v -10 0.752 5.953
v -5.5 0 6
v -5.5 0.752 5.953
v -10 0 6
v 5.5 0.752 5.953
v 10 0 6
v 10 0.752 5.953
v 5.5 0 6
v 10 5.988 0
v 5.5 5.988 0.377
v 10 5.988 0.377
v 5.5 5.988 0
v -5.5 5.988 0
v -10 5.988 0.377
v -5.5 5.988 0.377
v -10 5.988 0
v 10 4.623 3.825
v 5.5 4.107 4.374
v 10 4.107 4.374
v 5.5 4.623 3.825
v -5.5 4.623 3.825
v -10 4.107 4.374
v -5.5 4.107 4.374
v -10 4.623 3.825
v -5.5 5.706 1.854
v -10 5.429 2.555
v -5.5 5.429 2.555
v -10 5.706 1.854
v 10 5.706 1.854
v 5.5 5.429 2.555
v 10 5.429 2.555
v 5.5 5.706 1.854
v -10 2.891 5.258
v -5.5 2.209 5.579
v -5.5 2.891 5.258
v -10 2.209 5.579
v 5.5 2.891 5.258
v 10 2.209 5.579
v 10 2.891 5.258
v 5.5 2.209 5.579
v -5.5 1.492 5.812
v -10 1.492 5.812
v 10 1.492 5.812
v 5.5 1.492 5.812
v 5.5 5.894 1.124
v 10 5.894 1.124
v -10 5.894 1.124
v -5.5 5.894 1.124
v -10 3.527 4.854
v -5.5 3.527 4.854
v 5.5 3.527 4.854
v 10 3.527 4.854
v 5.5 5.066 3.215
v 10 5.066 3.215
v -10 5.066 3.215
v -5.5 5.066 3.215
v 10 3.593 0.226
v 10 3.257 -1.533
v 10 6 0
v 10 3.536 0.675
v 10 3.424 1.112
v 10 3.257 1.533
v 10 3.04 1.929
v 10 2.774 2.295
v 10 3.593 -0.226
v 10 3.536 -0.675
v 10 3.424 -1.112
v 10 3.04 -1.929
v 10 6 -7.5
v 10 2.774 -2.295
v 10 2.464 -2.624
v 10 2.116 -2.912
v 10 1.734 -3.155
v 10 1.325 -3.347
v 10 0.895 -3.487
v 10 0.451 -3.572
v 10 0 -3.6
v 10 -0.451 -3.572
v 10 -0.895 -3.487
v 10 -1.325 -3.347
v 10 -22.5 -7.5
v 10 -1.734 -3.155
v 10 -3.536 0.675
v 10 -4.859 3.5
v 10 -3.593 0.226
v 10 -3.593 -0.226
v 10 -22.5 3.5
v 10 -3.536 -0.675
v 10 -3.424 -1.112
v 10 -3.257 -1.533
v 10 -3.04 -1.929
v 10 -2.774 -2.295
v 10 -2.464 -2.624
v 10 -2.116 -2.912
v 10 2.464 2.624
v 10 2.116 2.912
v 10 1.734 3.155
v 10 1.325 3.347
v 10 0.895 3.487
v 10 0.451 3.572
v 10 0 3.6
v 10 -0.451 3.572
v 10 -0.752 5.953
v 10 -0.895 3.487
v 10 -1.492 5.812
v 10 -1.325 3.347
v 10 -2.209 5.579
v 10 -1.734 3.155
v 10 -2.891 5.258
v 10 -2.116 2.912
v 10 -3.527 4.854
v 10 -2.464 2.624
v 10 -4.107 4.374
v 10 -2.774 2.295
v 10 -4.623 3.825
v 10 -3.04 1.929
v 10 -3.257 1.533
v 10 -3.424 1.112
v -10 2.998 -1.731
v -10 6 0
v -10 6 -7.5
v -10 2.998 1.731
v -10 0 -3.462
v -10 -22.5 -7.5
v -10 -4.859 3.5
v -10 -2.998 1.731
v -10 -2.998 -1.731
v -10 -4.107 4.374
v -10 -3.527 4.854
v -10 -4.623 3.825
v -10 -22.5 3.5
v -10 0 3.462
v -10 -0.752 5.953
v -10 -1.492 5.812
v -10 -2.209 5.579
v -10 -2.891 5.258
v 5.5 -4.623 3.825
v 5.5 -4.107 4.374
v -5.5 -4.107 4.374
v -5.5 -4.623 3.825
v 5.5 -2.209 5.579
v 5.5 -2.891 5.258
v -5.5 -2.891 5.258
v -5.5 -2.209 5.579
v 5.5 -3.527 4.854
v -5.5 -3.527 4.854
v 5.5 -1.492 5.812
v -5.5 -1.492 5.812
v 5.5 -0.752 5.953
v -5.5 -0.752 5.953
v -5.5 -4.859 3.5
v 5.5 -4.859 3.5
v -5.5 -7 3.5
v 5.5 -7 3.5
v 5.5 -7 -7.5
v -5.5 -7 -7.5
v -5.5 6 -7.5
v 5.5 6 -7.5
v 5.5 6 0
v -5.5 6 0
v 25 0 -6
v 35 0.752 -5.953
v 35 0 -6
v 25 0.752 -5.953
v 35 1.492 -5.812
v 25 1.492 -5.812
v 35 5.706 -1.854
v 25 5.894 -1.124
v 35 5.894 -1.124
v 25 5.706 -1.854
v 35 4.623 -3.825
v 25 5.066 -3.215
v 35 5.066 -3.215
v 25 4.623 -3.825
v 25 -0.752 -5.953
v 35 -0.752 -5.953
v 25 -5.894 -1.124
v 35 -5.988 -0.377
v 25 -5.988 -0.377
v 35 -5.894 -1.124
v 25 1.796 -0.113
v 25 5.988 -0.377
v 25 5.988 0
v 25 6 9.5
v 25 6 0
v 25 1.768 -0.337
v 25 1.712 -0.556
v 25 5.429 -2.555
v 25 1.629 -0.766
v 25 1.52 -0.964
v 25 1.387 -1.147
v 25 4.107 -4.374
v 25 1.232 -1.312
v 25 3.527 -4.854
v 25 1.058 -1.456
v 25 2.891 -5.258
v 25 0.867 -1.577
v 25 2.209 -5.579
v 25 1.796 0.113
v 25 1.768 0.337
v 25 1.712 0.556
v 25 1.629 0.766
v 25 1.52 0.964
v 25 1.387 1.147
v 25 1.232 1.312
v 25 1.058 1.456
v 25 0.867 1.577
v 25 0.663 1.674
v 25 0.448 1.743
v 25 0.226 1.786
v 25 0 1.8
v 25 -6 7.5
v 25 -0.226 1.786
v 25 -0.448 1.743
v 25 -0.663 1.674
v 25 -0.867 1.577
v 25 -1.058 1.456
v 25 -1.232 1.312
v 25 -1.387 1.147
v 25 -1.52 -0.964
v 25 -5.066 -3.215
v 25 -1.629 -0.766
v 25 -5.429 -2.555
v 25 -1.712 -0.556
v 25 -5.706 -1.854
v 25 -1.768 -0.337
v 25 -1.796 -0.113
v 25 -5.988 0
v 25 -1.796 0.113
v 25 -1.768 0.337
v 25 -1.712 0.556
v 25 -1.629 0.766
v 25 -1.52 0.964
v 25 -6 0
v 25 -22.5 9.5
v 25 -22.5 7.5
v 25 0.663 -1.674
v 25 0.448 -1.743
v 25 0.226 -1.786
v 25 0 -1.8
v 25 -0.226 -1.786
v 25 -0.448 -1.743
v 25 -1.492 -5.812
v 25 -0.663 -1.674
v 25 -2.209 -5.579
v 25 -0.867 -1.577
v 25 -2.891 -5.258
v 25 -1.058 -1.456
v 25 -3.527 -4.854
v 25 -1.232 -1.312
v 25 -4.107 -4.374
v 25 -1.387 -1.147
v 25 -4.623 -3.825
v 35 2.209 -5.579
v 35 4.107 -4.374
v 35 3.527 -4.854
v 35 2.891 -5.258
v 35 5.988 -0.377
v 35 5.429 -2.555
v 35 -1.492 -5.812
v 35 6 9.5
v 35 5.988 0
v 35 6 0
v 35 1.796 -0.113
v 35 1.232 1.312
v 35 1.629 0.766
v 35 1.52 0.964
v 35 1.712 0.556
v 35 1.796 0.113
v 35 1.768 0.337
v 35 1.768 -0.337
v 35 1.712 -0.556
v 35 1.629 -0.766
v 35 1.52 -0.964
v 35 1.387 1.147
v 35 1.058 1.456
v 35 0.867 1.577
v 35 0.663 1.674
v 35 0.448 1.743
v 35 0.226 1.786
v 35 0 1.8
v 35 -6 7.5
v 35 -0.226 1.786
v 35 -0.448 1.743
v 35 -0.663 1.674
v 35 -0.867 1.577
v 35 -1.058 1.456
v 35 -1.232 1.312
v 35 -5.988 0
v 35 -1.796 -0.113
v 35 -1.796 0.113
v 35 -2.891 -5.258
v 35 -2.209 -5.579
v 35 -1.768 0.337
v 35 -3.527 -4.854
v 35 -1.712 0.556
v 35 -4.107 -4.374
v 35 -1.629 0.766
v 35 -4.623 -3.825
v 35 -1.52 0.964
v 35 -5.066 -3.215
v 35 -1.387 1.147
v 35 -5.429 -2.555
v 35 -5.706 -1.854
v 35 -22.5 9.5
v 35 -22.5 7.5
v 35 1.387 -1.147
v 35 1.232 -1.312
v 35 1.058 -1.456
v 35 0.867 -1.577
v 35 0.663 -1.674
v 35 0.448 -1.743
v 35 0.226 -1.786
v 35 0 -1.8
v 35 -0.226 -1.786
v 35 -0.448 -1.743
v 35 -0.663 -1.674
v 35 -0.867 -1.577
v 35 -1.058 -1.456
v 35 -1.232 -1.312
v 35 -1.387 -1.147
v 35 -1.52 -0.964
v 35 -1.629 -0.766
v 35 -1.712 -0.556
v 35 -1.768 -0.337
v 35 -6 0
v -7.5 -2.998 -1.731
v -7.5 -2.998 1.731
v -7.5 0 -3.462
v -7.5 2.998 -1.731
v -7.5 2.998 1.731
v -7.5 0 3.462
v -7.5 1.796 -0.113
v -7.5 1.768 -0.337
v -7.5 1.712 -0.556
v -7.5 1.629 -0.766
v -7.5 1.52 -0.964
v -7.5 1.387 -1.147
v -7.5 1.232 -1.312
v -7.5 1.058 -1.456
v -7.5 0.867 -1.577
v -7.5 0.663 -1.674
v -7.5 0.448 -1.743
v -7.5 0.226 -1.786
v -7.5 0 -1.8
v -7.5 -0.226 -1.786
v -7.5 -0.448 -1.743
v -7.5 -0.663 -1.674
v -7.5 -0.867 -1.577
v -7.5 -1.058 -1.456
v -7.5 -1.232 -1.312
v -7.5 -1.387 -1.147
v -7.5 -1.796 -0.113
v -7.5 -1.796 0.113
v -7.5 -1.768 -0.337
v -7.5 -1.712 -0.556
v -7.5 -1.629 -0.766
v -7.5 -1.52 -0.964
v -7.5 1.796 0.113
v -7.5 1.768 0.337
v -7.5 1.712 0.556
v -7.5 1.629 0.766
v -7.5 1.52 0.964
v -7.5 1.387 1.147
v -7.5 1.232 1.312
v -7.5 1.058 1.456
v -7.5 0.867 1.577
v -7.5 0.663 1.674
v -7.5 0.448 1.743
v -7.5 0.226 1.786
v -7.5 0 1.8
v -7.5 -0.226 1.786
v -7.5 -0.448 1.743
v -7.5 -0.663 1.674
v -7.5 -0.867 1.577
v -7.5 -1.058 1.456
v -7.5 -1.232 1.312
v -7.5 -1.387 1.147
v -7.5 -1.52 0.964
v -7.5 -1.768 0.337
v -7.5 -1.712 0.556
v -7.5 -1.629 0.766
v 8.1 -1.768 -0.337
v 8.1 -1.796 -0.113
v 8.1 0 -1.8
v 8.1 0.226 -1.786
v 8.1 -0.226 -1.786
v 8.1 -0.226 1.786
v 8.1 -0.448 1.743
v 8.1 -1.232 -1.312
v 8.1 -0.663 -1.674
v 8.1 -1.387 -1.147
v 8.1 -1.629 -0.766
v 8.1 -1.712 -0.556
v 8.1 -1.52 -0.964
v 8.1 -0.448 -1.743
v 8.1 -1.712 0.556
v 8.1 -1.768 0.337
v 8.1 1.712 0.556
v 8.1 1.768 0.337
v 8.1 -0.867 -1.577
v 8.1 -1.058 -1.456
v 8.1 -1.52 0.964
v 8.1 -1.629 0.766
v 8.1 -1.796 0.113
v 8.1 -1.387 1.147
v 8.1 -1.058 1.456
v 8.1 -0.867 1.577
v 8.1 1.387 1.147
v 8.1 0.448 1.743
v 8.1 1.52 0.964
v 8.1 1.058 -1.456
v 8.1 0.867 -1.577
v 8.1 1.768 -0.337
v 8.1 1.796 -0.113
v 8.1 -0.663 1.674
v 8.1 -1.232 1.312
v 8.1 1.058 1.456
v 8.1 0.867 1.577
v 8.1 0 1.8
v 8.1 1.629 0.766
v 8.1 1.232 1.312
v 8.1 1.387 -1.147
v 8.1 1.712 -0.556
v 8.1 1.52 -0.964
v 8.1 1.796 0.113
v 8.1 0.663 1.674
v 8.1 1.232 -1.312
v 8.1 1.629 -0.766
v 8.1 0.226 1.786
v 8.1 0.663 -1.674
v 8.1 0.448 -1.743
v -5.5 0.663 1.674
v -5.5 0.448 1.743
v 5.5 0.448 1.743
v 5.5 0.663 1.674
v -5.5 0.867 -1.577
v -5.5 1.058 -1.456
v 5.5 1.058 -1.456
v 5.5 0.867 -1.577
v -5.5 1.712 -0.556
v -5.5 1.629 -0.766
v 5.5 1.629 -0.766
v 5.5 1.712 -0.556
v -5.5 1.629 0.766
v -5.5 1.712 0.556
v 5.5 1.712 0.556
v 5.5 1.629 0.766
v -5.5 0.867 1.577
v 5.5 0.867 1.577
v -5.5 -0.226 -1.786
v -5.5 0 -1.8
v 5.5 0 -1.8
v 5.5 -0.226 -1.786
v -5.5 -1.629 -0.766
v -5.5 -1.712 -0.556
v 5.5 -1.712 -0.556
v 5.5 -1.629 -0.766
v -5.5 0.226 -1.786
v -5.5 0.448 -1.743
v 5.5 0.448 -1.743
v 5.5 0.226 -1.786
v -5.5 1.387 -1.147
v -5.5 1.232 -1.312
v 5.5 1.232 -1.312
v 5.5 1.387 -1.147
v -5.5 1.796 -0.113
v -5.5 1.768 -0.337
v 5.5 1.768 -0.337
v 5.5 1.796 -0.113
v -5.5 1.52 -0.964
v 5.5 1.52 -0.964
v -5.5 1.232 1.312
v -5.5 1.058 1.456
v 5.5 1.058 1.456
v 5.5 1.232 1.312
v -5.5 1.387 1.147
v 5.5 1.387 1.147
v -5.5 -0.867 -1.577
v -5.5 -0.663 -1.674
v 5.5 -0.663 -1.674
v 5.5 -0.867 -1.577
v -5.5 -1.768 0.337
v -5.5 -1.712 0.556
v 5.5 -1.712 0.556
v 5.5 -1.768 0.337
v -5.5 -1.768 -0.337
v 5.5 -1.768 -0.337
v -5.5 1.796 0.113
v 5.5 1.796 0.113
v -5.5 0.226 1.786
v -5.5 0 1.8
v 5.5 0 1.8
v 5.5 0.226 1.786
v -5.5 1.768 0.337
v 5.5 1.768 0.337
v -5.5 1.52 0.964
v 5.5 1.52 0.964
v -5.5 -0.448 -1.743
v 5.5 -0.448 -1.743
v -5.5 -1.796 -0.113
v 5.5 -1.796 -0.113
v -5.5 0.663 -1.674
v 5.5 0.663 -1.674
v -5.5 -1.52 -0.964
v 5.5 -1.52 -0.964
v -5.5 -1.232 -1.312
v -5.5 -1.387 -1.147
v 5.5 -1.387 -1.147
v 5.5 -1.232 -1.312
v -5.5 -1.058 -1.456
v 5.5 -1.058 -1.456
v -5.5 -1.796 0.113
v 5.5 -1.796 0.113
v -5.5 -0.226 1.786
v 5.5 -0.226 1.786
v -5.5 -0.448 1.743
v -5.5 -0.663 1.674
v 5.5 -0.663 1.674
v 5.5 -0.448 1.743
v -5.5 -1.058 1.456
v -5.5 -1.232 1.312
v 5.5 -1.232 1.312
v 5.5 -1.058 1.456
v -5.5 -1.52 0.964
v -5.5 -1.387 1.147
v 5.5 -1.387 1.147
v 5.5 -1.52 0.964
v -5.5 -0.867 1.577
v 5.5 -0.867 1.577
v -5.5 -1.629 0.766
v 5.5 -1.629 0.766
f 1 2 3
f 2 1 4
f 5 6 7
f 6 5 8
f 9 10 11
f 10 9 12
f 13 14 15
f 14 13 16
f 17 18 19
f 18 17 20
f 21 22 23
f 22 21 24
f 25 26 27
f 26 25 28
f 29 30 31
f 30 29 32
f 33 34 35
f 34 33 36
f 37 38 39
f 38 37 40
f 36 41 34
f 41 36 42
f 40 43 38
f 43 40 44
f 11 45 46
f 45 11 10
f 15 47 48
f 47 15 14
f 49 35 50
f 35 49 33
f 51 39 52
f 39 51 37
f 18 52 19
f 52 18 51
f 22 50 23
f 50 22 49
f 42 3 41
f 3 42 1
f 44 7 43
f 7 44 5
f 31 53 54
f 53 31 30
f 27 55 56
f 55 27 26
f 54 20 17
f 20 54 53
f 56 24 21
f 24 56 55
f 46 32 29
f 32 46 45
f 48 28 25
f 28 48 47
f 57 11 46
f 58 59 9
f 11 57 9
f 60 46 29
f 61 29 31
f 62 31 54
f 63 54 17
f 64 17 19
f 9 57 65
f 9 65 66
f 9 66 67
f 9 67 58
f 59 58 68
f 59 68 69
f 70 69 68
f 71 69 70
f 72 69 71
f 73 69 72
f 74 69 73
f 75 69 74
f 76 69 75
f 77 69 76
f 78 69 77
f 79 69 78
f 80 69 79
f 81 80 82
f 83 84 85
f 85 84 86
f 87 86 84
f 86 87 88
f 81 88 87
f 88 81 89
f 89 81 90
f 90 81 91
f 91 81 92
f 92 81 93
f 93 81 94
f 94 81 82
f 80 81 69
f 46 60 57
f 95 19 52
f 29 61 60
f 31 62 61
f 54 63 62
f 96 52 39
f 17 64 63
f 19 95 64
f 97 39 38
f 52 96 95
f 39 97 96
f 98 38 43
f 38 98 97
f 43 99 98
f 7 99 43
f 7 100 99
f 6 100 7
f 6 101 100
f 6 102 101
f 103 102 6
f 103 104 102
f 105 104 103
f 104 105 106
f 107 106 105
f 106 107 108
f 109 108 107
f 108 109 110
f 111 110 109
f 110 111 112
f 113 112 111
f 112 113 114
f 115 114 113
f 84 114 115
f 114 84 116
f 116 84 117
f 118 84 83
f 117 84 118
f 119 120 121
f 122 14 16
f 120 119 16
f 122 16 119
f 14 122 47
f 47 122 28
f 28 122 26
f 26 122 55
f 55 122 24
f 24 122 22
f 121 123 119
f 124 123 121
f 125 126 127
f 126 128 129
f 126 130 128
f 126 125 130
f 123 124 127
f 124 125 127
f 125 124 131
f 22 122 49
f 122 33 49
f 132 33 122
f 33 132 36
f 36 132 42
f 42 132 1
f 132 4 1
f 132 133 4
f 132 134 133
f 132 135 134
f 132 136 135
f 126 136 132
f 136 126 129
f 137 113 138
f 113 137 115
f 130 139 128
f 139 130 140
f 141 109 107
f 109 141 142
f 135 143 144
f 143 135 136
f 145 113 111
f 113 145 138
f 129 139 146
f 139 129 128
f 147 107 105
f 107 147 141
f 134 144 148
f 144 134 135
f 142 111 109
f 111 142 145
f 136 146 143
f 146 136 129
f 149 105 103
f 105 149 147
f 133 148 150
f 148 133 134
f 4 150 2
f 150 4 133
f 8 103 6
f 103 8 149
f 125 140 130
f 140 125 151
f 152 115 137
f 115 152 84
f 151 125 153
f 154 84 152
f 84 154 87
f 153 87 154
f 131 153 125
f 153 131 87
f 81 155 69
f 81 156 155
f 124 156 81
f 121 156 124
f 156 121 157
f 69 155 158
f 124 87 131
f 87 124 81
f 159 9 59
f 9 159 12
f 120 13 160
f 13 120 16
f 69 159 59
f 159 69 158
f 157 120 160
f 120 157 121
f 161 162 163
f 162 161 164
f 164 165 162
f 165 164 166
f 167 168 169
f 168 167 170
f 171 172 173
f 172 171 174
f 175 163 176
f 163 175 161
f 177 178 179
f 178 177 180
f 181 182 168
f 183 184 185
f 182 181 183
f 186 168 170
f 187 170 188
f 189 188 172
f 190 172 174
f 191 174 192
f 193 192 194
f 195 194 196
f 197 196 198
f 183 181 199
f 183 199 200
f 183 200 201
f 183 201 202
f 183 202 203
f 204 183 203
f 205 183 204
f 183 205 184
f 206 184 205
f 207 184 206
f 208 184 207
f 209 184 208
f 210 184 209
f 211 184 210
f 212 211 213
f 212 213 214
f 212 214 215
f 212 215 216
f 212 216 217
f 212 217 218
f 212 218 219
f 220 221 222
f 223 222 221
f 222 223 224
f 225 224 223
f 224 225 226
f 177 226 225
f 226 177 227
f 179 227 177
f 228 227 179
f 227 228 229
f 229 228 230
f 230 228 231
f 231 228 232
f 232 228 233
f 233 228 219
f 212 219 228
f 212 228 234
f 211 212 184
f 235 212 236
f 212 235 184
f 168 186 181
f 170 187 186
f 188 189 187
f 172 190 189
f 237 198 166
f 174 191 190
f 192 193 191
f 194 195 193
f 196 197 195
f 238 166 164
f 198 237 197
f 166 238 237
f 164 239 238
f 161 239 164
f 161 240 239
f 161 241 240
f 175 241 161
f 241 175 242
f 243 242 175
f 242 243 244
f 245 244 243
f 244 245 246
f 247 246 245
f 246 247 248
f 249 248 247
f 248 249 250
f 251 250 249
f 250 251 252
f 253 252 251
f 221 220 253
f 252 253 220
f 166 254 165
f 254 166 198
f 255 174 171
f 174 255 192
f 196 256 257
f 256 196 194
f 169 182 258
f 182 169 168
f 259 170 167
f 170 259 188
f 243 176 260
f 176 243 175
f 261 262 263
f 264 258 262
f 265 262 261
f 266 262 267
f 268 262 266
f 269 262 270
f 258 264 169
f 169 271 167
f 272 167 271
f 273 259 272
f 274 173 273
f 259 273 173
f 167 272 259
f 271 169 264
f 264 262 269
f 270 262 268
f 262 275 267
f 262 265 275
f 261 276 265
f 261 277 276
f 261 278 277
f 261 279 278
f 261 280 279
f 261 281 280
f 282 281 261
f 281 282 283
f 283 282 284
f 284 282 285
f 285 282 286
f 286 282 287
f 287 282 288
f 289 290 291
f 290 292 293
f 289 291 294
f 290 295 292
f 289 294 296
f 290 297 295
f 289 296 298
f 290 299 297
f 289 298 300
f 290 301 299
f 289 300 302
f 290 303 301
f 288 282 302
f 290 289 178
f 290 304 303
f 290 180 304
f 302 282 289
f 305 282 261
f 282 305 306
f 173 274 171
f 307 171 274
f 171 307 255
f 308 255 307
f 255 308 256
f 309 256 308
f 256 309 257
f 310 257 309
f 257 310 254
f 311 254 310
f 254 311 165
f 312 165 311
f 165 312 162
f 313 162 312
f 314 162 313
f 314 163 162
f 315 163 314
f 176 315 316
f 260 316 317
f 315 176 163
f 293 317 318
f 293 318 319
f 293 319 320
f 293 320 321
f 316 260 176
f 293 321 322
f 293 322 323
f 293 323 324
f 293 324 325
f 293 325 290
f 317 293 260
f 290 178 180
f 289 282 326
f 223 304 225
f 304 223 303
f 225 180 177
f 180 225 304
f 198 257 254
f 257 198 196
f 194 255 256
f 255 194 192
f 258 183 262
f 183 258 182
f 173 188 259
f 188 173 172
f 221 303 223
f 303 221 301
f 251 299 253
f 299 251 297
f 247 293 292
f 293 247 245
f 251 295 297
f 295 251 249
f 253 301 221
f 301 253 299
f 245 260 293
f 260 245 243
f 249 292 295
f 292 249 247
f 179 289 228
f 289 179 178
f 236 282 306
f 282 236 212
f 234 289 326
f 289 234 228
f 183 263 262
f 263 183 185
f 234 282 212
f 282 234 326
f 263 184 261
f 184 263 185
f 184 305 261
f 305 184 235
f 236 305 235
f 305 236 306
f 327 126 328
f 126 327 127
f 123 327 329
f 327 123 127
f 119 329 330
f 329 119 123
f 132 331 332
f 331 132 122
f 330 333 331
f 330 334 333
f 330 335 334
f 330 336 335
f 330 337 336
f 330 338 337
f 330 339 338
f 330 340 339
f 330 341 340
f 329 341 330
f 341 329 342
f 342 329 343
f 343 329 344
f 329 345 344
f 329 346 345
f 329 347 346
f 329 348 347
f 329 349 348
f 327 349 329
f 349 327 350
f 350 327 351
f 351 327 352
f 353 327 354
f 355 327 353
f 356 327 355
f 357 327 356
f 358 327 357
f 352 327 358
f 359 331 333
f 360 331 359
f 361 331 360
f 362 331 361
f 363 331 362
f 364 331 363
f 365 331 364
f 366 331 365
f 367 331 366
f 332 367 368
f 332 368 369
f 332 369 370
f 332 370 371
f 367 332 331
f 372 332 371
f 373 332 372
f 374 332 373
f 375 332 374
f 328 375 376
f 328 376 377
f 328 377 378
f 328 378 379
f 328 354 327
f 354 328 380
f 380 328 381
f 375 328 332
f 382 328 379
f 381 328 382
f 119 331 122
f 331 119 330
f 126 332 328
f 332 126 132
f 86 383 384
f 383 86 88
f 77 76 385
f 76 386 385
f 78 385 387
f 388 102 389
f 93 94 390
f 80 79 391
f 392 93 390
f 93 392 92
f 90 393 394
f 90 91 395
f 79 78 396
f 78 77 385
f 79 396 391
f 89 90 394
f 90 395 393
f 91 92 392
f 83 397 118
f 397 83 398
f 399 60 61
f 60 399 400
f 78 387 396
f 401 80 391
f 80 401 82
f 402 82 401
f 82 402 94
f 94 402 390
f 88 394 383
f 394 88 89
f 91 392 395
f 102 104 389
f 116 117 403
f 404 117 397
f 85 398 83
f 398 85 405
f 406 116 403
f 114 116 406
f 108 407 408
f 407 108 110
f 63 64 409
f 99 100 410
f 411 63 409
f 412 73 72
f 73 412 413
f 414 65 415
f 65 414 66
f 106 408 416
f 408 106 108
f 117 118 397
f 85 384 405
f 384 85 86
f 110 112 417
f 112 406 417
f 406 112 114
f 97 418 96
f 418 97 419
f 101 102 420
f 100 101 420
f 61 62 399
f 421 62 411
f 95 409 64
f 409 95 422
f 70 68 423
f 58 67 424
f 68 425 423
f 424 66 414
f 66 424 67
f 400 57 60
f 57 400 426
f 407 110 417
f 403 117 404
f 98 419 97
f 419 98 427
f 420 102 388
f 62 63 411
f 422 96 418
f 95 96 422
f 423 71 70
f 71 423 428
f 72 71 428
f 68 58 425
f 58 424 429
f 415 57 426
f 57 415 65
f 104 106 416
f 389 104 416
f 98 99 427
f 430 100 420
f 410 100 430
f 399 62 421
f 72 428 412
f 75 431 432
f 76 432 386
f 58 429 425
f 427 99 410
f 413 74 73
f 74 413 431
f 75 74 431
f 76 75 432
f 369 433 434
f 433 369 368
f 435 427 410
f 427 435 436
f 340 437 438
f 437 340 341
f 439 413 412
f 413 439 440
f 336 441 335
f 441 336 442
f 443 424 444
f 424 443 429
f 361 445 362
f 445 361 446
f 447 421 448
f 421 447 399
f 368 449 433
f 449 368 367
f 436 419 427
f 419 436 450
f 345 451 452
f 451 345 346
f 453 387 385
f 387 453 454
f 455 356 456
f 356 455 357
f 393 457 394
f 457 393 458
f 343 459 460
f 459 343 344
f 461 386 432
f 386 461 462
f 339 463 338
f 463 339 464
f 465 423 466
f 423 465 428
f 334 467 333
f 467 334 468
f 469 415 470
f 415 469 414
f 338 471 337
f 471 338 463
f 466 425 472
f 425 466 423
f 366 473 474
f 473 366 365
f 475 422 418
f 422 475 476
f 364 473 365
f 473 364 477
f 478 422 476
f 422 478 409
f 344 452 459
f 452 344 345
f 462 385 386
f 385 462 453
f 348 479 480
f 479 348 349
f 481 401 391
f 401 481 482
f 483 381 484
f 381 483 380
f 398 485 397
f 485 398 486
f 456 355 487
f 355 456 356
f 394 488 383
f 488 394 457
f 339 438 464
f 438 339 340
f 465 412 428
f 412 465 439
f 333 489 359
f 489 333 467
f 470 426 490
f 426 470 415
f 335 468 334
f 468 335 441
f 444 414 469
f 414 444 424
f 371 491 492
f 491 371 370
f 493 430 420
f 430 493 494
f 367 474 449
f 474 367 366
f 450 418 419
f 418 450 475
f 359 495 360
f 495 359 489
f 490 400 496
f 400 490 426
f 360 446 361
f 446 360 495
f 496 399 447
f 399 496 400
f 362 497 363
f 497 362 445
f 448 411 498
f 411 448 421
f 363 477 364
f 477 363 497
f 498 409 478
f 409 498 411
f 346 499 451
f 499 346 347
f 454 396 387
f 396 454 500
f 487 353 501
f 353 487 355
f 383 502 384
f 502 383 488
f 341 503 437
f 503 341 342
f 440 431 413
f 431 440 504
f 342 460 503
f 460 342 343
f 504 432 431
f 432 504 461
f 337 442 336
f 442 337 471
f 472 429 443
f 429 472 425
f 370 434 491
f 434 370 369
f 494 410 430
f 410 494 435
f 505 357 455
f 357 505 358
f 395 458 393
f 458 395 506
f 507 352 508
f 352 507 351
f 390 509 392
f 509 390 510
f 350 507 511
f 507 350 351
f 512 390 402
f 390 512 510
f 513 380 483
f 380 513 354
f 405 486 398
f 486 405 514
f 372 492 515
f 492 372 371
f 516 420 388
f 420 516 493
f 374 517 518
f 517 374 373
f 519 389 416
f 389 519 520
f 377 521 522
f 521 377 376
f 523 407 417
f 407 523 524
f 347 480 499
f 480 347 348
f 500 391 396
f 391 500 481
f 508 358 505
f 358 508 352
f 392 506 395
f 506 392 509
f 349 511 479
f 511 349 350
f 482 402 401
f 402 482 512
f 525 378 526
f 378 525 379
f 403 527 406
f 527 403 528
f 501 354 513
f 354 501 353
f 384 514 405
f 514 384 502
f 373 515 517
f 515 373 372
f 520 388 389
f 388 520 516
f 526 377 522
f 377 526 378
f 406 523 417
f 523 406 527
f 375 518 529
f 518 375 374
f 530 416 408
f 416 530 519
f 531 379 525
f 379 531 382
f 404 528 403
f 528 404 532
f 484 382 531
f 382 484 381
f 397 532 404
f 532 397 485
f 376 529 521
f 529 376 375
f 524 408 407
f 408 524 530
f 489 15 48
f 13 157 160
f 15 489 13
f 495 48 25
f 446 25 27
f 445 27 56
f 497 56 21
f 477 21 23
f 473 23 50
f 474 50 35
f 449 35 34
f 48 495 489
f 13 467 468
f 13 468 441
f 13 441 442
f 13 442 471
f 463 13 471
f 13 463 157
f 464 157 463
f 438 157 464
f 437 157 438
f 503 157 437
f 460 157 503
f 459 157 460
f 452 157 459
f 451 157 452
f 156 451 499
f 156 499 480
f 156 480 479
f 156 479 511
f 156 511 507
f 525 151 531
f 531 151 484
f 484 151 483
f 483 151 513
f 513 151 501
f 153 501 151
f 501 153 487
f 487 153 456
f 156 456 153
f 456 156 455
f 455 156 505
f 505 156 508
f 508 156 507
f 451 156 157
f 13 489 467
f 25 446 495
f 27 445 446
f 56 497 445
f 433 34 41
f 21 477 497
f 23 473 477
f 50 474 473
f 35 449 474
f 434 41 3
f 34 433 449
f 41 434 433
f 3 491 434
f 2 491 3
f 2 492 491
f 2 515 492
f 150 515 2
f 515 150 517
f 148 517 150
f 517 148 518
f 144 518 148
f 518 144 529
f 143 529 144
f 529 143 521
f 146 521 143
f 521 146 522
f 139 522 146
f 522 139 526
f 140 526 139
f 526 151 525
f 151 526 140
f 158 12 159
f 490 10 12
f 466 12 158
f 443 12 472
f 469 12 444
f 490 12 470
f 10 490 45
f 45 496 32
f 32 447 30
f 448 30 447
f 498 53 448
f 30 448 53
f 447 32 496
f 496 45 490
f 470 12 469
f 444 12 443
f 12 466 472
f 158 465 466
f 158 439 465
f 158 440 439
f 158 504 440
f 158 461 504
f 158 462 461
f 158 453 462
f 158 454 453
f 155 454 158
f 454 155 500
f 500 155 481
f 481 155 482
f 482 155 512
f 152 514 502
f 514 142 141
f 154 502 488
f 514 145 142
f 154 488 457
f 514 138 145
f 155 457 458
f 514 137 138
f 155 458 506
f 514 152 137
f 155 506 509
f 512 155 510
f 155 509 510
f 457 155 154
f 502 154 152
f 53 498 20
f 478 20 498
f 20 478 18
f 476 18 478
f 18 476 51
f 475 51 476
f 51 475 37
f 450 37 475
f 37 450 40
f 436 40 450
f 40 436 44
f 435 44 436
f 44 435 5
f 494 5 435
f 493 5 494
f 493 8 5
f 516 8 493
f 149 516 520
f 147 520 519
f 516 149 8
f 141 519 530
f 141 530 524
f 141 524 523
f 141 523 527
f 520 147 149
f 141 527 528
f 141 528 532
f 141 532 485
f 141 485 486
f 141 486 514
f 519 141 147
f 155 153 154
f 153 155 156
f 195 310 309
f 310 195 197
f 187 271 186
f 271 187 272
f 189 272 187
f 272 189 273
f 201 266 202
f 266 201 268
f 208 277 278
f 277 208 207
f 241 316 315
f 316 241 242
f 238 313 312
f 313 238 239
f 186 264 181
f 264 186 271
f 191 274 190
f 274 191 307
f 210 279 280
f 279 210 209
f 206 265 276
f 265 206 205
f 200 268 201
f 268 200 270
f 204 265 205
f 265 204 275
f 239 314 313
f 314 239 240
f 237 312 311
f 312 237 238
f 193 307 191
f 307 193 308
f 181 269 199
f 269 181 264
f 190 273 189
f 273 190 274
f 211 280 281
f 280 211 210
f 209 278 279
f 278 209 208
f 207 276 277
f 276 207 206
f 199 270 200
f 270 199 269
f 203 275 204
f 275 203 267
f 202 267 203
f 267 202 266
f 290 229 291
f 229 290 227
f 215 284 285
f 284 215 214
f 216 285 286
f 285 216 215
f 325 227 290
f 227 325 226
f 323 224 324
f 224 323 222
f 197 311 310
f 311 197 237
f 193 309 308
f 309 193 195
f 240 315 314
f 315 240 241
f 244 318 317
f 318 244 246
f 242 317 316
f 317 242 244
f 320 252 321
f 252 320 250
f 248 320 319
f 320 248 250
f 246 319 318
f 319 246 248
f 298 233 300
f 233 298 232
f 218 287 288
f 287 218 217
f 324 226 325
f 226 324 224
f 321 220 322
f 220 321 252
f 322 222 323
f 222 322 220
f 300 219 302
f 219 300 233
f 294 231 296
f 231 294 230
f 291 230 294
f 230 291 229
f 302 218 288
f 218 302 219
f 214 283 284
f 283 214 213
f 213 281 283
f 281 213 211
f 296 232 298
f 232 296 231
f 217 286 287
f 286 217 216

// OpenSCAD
$fn = 50;


difference() {
	union() {
		translate(v = [-10.0000000000, 0, 0.0000000000]) {
			rotate(a = [0, 90, 0]) {
				cylinder(h = 20, r = 6.0000000000);
			}
		}
		translate(v = [-10.0000000000, -22.5000000000, -7.5000000000]) {
			cube(size = [20, 22.5000000000, 11]);
		}
		translate(v = [-10.0000000000, -21.0000000000, -7.5000000000]) {
			cube(size = [20, 27, 7.5000000000]);
		}
		translate(v = [25.0000000000, 0, 0.0000000000]) {
			rotate(a = [0, 90, 0]) {
				cylinder(h = 10, r = 6.0000000000);
			}
		}
		translate(v = [25.0000000000, -6.0000000000, 0]) {
			cube(size = [10, 12, 7.5000000000]);
		}
		translate(v = [25.0000000000, -22.5000000000, 7.5000000000]) {
			cube(size = [10, 28.5000000000, 2]);
		}
	}
	union() {
		translate(v = [10.0000000000, 0, 0]) {
			rotate(a = [0, 90, 0]) {
				difference() {
					union() {
						translate(v = [0, 0, -20.0000000000]) {
							rotate(a = [0, 0, 0]) {
								difference() {
									union() {
										linear_extrude(height = 2.5000000000) {
											polygon(points = [[3.4620000000, 0.0000000000], [1.7310000000, 2.9981799479], [-1.7310000000, 2.9981799479], [-3.4620000000, 0.0000000000], [-1.7310000000, -2.9981799479], [1.7310000000, -2.9981799479]]);
										}
									}
									union();
								}
							}
						}
						translate(v = [0, 0, -20.0000000000]) {
							rotate(a = [0, 0, 0]) {
								difference() {
									union() {
										linear_extrude(height = 2.5000000000) {
											polygon(points = [[3.4620000000, 0.0000000000], [1.7310000000, 2.9981799479], [-1.7310000000, 2.9981799479], [-3.4620000000, 0.0000000000], [-1.7310000000, -2.9981799479], [1.7310000000, -2.9981799479]]);
										}
									}
									union();
								}
							}
						}
						translate(v = [0, 0, -20.0000000000]) {
							rotate(a = [0, 0, 0]) {
								difference() {
									union() {
										linear_extrude(height = 2.5000000000) {
											polygon(points = [[3.4620000000, 0.0000000000], [1.7310000000, 2.9981799479], [-1.7310000000, 2.9981799479], [-3.4620000000, 0.0000000000], [-1.7310000000, -2.9981799479], [1.7310000000, -2.9981799479]]);
										}
									}
									union();
								}
							}
						}
						translate(v = [0, 0, -20.0000000000]) {
							cylinder(h = 20, r = 1.5000000000);
						}
						translate(v = [0, 0, -1.9000000000]) {
							cylinder(h = 1.9000000000, r1 = 1.8000000000, r2 = 3.6000000000);
						}
						translate(v = [0, 0, -20.0000000000]) {
							cylinder(h = 20, r = 1.8000000000);
						}
						translate(v = [0, 0, -20.0000000000]) {
							cylinder(h = 20, r = 1.5000000000);
						}
					}
					union();
				}
			}
		}
		translate(v = [-5.5000000000, -7.0000000000, -7.5000000000]) {
			cube(size = [11, 17, 15]);
		}
		translate(v = [25.0000000000, 0, 0]) {
			rotate(a = [0, 90, 0]) {
				cylinder(h = 10, r = 1.8000000000);
			}
		}
	}
}
